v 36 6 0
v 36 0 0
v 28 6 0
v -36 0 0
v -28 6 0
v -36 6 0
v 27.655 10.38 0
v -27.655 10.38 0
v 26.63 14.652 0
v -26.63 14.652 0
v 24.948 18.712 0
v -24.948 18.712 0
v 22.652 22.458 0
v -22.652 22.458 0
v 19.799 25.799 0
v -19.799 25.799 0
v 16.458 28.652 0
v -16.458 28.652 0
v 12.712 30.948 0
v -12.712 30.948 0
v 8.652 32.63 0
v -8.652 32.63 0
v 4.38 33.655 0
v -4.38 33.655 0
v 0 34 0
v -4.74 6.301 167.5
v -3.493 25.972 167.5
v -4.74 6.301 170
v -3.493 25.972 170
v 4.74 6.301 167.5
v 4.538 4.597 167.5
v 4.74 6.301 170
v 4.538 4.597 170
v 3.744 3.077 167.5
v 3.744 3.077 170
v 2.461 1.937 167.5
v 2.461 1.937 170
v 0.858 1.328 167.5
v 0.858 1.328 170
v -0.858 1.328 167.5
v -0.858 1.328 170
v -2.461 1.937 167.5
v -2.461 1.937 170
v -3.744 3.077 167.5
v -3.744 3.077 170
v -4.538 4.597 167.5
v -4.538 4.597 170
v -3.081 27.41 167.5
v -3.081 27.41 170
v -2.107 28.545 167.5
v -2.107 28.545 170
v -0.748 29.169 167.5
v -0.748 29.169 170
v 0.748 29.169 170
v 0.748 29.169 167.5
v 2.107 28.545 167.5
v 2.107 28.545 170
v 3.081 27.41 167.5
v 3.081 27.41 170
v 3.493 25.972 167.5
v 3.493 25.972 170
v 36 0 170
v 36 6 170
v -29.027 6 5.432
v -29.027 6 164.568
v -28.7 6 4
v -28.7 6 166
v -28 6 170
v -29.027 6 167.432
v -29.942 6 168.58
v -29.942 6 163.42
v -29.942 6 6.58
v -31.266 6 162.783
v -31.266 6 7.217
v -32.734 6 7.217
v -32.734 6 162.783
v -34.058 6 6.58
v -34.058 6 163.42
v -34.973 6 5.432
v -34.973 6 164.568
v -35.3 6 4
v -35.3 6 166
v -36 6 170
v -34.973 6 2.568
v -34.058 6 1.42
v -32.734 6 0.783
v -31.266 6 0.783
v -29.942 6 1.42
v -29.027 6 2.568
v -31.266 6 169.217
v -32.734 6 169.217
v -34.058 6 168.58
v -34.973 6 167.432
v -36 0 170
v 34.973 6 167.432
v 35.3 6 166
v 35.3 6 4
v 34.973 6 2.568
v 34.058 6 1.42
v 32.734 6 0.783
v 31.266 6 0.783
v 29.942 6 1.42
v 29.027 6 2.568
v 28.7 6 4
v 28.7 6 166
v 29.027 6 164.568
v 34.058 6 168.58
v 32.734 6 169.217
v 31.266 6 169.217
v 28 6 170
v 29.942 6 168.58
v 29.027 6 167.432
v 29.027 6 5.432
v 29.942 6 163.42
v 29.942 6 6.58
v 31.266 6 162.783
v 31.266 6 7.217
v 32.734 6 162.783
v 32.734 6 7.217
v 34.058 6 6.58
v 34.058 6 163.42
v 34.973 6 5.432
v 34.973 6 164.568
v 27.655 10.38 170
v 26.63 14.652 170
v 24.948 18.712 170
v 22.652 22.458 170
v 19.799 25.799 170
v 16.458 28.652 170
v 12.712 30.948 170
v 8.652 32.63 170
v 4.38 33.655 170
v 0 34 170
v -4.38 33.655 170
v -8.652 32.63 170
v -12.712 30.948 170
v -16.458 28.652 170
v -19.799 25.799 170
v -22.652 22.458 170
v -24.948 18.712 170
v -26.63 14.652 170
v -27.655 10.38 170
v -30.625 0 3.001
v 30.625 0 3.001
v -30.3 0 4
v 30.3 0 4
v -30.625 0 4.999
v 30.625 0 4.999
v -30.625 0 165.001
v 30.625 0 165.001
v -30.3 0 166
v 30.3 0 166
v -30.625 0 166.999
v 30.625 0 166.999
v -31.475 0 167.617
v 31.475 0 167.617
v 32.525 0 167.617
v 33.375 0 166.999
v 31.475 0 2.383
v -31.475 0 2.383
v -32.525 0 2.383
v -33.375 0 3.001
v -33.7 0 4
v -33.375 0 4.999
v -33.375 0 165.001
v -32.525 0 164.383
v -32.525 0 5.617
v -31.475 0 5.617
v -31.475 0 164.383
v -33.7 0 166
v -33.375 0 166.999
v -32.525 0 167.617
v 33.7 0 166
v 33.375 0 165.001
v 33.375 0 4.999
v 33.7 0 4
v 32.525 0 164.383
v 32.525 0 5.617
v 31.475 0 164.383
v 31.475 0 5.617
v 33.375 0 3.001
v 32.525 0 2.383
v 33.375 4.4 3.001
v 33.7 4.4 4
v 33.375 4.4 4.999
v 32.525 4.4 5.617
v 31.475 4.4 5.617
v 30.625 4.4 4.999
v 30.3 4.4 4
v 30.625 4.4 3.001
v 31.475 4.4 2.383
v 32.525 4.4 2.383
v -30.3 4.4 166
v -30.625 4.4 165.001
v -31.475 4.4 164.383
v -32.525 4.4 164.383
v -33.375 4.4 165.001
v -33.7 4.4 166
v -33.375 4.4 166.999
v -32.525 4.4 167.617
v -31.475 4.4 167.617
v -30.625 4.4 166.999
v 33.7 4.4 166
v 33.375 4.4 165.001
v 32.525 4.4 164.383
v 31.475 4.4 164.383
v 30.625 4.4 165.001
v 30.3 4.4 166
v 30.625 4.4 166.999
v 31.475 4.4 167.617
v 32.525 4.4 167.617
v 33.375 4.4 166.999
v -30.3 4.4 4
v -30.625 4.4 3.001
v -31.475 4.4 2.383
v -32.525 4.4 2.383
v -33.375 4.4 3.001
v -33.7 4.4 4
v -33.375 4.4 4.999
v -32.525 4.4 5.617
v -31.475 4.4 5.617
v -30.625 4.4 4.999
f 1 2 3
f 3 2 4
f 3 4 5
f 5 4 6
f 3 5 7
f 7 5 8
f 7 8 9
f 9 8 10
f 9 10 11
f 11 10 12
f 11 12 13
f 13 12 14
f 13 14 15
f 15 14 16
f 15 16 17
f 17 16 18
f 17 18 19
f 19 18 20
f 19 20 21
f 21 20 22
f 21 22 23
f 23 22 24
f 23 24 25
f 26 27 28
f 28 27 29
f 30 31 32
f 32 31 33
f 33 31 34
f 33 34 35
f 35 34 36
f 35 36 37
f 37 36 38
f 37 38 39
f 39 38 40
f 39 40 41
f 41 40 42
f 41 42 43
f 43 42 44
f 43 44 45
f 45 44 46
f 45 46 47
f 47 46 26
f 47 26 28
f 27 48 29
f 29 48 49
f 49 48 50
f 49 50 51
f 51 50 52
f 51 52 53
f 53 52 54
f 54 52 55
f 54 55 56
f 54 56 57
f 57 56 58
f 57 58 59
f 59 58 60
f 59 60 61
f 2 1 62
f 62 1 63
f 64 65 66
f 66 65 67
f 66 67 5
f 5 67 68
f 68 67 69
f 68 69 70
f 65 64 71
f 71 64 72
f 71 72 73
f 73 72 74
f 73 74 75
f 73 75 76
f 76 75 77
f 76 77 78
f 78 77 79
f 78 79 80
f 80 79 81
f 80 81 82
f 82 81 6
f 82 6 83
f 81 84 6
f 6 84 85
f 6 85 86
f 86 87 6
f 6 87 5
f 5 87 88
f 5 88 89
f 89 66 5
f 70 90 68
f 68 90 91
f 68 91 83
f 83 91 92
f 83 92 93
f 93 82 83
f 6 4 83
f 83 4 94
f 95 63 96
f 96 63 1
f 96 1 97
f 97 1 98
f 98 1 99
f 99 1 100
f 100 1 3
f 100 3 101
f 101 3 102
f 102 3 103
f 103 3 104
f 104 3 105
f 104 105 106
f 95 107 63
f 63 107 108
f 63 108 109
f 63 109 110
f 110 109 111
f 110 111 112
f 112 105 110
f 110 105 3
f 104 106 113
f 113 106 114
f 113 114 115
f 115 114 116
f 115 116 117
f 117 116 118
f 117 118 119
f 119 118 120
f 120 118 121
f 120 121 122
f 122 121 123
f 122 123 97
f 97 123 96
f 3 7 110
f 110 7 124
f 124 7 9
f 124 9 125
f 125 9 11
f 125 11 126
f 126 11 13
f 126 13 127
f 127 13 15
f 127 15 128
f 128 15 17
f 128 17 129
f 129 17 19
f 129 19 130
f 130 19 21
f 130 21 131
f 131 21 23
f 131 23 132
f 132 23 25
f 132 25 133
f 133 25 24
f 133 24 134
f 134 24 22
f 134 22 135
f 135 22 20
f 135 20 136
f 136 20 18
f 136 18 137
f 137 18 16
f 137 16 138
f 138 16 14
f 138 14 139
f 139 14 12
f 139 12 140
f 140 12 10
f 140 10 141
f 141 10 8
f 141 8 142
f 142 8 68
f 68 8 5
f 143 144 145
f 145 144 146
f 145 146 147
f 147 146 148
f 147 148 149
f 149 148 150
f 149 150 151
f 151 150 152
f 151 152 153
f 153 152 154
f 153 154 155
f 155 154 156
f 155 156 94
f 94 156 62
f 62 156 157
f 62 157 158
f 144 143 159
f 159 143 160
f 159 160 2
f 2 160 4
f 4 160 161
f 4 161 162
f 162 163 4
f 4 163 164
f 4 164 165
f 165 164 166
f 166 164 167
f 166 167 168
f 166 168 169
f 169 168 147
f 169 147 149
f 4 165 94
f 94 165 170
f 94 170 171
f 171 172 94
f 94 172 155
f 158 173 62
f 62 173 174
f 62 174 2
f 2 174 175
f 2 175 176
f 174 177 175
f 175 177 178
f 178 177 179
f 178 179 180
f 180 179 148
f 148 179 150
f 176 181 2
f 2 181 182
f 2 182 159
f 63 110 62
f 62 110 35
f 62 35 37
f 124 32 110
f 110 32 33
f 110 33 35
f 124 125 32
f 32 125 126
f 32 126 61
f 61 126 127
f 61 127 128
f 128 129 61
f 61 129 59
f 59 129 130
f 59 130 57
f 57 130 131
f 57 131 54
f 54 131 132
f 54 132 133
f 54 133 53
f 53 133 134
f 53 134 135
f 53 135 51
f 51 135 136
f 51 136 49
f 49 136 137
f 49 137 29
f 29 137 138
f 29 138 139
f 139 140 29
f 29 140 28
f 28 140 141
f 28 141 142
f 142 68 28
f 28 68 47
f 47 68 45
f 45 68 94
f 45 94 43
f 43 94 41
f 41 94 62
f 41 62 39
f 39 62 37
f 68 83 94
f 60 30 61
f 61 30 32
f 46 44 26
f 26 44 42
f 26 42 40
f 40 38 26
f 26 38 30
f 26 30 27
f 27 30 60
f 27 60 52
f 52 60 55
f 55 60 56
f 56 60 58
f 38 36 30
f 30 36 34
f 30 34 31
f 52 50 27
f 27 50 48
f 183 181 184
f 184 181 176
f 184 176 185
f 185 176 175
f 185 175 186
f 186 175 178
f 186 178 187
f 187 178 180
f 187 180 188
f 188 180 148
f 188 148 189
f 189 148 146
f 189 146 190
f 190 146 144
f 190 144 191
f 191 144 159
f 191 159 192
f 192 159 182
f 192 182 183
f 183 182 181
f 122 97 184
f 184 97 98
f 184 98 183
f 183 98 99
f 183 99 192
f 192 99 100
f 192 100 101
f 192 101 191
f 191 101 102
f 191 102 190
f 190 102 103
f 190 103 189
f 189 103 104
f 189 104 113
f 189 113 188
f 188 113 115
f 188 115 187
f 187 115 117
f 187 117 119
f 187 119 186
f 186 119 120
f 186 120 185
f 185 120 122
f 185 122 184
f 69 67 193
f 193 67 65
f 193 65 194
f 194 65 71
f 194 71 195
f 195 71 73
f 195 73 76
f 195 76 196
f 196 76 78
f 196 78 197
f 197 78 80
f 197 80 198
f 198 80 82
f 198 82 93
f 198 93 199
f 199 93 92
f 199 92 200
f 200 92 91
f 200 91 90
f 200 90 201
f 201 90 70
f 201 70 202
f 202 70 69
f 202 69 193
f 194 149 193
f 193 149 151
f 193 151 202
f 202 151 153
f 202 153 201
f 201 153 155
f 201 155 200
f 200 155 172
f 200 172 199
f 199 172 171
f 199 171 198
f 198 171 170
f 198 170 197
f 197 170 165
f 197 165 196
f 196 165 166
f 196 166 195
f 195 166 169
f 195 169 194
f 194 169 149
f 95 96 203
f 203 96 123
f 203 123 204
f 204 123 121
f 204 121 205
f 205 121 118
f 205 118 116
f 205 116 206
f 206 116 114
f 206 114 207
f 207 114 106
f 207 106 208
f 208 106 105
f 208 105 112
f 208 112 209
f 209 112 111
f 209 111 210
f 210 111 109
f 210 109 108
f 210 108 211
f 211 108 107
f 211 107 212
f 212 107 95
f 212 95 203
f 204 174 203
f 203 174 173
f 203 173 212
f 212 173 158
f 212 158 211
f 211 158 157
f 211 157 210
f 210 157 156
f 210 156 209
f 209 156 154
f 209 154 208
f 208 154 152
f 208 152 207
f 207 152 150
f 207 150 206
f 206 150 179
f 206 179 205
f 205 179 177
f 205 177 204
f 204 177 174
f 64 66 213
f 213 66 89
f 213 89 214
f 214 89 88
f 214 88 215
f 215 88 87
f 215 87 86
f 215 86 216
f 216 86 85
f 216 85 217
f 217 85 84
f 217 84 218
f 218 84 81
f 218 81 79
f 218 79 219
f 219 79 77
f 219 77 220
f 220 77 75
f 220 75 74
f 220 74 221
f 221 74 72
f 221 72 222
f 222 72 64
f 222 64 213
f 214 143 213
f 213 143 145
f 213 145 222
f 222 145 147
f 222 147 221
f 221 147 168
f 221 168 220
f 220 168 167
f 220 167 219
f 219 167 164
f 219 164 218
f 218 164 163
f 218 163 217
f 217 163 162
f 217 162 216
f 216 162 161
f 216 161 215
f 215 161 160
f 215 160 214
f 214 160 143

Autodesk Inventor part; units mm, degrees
ref_plane "YZ Plane" through (0, 0, 0) normal (1, 0, 0) x (0, 1, 0)
ref_plane "XZ Plane" through (0, 0, 0) normal (0, 1, 0) x (-1, 0, 0)
ref_plane "XY Plane" through (0, 0, 0) normal (0, 0, 1) x (1, 0, 0)
sketch "Эскиз1" plane through (0, 0, 0) normal (0, 0, 1) x (1, 0, 0)
  line L0 (0, 0) -> (-36, 0)
  line L1 (-36, 0) -> (-36, 6)
  line L2 (-36, 6) -> (-28, 6)
  arc A0 (0, 34) -> (-28, 6) centre (0, 6) ccw
  line L3 (0, 34) -> (0, 0) construction
  line L4 (-28, 6) -> (-28, 13.1241) construction
  circle A1 centre (0, 6) radius 4.75
  circle A2 centre (0, 25.75) radius 3.5
  line L5 (-3.493, 25.9715) -> (-4.7405, 6.3006)
  line L6 (3.493, 25.9715) -> (4.7405, 6.3006)
  line L7 (0, 0) -> (36, 0)
  line L8 (36, 0) -> (36, 6)
  line L9 (36, 6) -> (28, 6)
  arc A3 (28, 6) -> (0, 34) centre (0, 6) ccw
  line L10 (28, 6) -> (28, 13.1241) construction
  dimension "d0" = 8
  dimension "d1" = 6
  dimension "d2" = 28
  dimension "d3" = 7
  dimension "d4" = 9.5
  dimension "d5" = 19.75
extrude "Выдавливание1" add sketch "Эскиз1" along normal blind 170
sketch "Эскиз2" plane through (0, 0, 0) normal (0, 0, -1) x (-1, 0, 0)
  line L0 (-36, 6) -> (-28, 6) projected
  line L1 (-36, 0) -> (-36, 6) projected
  line L2 (36, 0) -> (-36, 0) projected
  line L3 (36, 6) -> (36, 0) projected
  line L4 (28, 6) -> (36, 6) projected
  arc A0 (28, 6) -> (-28, 6) centre (0, 6) ccw projected
  line L5 (-3.493, 25.9715) -> (-4.7405, 6.3006) projected
  arc A1 (3.493, 25.9715) -> (-3.493, 25.9715) centre (0, 25.75) ccw projected
  line L6 (4.7405, 6.3006) -> (3.493, 25.9715) projected
  arc A2 (-4.7405, 6.3006) -> (4.7405, 6.3006) centre (0, 6) ccw projected
  point P0 (0, 0)
extrude "Выдавливание2" add sketch "Эскиз2" against normal blind 167.5 contours A1 L6 A2 L5
sketch "Эскиз3" plane through (28, 6, 0) normal (0, 1, 0) x (1, 0, 0)
  line L0 (-64, 0) -> (8, 0) projected
  line L1 (8, 0) -> (8, -170) projected
  line L2 (-64, -170) -> (8, -170) projected
  line L3 (-64, 0) -> (-64, -170) projected
  line L4 (-28, 0) -> (-28, -85) construction
  line L5 (-28, -85) -> (14.415, -85) construction
  point P0 (-60, -166)
  point P1 (8, -85)
  point P2 (4, -166)
  point P3 (-60, -4)
  point P4 (4, -4)
  dimension "d10" = 4
  dimension "d11" = 4
hole "Отверстие1" at (-32, 6, 166) at (32, 6, 166) at (-32, 6, 4) at (32, 6, 4) direction (0, -1, 0) diameter 3.4 depth 6 countersink diameter 6.6 countersink angle 90 clearance for "с потайной головкой ГОСТ 12876-67" size "M3" standard "ГОСТ"
properties part number "вал форточка"
